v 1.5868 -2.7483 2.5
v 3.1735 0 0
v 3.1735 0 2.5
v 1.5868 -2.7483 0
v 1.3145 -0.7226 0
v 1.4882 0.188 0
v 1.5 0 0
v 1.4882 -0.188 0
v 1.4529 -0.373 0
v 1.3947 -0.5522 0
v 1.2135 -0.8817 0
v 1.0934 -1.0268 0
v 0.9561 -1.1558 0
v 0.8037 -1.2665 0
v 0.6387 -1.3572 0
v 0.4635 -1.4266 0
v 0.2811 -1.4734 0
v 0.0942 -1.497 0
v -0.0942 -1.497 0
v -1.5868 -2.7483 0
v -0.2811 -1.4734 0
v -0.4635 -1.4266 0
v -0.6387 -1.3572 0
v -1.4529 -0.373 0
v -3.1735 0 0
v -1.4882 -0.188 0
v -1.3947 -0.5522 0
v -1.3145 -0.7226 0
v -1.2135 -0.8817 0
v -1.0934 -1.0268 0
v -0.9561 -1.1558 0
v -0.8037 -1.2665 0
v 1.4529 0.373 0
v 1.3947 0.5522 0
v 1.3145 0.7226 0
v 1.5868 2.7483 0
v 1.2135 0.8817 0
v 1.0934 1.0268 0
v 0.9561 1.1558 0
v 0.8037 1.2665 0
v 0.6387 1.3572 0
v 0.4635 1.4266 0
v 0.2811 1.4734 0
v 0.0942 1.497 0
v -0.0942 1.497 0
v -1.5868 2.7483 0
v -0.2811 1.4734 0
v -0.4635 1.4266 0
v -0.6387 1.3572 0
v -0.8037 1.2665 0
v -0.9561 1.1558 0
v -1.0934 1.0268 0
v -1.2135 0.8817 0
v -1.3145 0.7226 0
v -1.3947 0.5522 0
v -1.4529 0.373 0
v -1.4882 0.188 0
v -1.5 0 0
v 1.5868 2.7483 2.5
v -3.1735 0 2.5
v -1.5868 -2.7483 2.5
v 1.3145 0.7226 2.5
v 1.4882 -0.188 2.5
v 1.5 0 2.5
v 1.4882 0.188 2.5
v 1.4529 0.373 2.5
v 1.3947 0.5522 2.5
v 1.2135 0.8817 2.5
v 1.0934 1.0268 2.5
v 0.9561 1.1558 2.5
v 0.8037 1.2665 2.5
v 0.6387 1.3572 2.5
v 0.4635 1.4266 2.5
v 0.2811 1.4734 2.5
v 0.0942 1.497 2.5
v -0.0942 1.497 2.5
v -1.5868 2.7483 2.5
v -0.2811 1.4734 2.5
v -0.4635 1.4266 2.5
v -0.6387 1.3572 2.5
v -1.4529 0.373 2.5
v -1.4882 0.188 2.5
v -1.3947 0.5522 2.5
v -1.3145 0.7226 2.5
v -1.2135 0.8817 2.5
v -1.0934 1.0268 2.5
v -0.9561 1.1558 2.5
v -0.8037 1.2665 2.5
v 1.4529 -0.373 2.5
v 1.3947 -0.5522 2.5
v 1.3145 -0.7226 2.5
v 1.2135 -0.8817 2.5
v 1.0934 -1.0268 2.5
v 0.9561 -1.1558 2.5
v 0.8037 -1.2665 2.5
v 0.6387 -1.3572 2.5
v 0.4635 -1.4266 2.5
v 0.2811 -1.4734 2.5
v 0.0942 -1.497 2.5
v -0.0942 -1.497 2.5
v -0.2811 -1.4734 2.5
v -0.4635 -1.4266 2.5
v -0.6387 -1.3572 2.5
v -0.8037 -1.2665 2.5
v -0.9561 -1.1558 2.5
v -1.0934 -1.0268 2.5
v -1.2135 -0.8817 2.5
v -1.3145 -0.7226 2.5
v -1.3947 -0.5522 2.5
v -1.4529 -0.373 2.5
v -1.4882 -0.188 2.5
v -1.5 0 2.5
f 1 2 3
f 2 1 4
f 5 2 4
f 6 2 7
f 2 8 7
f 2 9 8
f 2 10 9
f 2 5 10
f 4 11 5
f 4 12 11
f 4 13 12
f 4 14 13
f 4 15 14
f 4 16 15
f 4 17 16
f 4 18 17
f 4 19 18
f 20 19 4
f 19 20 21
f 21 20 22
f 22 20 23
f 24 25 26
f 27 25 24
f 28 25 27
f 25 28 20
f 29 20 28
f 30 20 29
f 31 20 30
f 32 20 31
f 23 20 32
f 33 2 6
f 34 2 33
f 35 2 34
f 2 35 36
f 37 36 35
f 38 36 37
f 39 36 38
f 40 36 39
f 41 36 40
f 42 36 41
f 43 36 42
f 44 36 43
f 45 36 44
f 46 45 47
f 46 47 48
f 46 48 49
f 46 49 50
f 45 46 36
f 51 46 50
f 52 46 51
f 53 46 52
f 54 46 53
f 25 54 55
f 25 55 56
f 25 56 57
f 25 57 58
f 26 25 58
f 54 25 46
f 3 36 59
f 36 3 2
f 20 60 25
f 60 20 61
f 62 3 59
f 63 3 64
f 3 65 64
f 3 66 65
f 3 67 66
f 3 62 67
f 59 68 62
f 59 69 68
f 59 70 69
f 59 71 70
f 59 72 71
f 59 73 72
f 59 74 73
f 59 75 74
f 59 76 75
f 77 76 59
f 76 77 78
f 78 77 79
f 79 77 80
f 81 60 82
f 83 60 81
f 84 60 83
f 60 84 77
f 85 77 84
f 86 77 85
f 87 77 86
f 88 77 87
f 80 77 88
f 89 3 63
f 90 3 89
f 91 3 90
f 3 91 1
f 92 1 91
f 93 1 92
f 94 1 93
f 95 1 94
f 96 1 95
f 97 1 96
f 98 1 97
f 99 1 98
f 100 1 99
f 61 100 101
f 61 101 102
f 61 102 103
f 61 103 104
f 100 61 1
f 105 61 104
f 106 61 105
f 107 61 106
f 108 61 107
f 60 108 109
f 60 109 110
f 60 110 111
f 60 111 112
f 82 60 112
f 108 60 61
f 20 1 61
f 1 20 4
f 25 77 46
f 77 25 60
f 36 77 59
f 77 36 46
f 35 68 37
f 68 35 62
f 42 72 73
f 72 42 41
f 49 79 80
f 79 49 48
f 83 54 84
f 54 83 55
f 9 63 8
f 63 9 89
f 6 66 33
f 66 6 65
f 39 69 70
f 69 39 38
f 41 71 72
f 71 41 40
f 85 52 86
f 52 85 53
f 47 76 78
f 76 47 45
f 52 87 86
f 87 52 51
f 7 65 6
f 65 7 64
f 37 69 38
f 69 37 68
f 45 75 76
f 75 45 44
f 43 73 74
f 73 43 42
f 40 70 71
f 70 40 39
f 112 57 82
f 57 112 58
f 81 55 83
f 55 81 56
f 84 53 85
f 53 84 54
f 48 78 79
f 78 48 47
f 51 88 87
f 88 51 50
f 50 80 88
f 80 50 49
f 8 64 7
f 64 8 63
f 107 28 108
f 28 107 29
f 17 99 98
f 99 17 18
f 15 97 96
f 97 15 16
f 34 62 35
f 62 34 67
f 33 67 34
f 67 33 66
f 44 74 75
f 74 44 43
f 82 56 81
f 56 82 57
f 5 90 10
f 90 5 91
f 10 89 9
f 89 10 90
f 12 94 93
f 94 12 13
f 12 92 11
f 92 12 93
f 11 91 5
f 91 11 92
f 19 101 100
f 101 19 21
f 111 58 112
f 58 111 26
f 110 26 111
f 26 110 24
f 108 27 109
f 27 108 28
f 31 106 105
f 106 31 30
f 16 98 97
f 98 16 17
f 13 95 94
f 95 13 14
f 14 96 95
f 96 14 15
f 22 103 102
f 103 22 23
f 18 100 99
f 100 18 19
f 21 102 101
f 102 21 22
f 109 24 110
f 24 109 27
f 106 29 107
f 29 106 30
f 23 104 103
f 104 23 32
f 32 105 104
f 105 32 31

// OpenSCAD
$fn = 50;


difference() {
	union() {
		translate(v = [0, 0, 0]) {
			rotate(a = [0, 0, 0]) {
				#translate(v = [0, 0, 0]) {
					rotate(a = [0, 0, 0]) {
						linear_extrude(height = 2.5000000000) {
							polygon(points = [[3.1735000000, 0.0000000000], [1.5867500000, 2.7483316189], [-1.5867500000, 2.7483316189], [-3.1735000000, 0.0000000000], [-1.5867500000, -2.7483316189], [1.5867500000, -2.7483316189]]);
						}
					}
				}
			}
		}
	}
	union() {
		translate(v = [0, 0, -10]) {
			rotate(a = [0, 0, 0]) {
				cylinder(h = 100, r = 1.5000000000);
			}
		}
	}
}
